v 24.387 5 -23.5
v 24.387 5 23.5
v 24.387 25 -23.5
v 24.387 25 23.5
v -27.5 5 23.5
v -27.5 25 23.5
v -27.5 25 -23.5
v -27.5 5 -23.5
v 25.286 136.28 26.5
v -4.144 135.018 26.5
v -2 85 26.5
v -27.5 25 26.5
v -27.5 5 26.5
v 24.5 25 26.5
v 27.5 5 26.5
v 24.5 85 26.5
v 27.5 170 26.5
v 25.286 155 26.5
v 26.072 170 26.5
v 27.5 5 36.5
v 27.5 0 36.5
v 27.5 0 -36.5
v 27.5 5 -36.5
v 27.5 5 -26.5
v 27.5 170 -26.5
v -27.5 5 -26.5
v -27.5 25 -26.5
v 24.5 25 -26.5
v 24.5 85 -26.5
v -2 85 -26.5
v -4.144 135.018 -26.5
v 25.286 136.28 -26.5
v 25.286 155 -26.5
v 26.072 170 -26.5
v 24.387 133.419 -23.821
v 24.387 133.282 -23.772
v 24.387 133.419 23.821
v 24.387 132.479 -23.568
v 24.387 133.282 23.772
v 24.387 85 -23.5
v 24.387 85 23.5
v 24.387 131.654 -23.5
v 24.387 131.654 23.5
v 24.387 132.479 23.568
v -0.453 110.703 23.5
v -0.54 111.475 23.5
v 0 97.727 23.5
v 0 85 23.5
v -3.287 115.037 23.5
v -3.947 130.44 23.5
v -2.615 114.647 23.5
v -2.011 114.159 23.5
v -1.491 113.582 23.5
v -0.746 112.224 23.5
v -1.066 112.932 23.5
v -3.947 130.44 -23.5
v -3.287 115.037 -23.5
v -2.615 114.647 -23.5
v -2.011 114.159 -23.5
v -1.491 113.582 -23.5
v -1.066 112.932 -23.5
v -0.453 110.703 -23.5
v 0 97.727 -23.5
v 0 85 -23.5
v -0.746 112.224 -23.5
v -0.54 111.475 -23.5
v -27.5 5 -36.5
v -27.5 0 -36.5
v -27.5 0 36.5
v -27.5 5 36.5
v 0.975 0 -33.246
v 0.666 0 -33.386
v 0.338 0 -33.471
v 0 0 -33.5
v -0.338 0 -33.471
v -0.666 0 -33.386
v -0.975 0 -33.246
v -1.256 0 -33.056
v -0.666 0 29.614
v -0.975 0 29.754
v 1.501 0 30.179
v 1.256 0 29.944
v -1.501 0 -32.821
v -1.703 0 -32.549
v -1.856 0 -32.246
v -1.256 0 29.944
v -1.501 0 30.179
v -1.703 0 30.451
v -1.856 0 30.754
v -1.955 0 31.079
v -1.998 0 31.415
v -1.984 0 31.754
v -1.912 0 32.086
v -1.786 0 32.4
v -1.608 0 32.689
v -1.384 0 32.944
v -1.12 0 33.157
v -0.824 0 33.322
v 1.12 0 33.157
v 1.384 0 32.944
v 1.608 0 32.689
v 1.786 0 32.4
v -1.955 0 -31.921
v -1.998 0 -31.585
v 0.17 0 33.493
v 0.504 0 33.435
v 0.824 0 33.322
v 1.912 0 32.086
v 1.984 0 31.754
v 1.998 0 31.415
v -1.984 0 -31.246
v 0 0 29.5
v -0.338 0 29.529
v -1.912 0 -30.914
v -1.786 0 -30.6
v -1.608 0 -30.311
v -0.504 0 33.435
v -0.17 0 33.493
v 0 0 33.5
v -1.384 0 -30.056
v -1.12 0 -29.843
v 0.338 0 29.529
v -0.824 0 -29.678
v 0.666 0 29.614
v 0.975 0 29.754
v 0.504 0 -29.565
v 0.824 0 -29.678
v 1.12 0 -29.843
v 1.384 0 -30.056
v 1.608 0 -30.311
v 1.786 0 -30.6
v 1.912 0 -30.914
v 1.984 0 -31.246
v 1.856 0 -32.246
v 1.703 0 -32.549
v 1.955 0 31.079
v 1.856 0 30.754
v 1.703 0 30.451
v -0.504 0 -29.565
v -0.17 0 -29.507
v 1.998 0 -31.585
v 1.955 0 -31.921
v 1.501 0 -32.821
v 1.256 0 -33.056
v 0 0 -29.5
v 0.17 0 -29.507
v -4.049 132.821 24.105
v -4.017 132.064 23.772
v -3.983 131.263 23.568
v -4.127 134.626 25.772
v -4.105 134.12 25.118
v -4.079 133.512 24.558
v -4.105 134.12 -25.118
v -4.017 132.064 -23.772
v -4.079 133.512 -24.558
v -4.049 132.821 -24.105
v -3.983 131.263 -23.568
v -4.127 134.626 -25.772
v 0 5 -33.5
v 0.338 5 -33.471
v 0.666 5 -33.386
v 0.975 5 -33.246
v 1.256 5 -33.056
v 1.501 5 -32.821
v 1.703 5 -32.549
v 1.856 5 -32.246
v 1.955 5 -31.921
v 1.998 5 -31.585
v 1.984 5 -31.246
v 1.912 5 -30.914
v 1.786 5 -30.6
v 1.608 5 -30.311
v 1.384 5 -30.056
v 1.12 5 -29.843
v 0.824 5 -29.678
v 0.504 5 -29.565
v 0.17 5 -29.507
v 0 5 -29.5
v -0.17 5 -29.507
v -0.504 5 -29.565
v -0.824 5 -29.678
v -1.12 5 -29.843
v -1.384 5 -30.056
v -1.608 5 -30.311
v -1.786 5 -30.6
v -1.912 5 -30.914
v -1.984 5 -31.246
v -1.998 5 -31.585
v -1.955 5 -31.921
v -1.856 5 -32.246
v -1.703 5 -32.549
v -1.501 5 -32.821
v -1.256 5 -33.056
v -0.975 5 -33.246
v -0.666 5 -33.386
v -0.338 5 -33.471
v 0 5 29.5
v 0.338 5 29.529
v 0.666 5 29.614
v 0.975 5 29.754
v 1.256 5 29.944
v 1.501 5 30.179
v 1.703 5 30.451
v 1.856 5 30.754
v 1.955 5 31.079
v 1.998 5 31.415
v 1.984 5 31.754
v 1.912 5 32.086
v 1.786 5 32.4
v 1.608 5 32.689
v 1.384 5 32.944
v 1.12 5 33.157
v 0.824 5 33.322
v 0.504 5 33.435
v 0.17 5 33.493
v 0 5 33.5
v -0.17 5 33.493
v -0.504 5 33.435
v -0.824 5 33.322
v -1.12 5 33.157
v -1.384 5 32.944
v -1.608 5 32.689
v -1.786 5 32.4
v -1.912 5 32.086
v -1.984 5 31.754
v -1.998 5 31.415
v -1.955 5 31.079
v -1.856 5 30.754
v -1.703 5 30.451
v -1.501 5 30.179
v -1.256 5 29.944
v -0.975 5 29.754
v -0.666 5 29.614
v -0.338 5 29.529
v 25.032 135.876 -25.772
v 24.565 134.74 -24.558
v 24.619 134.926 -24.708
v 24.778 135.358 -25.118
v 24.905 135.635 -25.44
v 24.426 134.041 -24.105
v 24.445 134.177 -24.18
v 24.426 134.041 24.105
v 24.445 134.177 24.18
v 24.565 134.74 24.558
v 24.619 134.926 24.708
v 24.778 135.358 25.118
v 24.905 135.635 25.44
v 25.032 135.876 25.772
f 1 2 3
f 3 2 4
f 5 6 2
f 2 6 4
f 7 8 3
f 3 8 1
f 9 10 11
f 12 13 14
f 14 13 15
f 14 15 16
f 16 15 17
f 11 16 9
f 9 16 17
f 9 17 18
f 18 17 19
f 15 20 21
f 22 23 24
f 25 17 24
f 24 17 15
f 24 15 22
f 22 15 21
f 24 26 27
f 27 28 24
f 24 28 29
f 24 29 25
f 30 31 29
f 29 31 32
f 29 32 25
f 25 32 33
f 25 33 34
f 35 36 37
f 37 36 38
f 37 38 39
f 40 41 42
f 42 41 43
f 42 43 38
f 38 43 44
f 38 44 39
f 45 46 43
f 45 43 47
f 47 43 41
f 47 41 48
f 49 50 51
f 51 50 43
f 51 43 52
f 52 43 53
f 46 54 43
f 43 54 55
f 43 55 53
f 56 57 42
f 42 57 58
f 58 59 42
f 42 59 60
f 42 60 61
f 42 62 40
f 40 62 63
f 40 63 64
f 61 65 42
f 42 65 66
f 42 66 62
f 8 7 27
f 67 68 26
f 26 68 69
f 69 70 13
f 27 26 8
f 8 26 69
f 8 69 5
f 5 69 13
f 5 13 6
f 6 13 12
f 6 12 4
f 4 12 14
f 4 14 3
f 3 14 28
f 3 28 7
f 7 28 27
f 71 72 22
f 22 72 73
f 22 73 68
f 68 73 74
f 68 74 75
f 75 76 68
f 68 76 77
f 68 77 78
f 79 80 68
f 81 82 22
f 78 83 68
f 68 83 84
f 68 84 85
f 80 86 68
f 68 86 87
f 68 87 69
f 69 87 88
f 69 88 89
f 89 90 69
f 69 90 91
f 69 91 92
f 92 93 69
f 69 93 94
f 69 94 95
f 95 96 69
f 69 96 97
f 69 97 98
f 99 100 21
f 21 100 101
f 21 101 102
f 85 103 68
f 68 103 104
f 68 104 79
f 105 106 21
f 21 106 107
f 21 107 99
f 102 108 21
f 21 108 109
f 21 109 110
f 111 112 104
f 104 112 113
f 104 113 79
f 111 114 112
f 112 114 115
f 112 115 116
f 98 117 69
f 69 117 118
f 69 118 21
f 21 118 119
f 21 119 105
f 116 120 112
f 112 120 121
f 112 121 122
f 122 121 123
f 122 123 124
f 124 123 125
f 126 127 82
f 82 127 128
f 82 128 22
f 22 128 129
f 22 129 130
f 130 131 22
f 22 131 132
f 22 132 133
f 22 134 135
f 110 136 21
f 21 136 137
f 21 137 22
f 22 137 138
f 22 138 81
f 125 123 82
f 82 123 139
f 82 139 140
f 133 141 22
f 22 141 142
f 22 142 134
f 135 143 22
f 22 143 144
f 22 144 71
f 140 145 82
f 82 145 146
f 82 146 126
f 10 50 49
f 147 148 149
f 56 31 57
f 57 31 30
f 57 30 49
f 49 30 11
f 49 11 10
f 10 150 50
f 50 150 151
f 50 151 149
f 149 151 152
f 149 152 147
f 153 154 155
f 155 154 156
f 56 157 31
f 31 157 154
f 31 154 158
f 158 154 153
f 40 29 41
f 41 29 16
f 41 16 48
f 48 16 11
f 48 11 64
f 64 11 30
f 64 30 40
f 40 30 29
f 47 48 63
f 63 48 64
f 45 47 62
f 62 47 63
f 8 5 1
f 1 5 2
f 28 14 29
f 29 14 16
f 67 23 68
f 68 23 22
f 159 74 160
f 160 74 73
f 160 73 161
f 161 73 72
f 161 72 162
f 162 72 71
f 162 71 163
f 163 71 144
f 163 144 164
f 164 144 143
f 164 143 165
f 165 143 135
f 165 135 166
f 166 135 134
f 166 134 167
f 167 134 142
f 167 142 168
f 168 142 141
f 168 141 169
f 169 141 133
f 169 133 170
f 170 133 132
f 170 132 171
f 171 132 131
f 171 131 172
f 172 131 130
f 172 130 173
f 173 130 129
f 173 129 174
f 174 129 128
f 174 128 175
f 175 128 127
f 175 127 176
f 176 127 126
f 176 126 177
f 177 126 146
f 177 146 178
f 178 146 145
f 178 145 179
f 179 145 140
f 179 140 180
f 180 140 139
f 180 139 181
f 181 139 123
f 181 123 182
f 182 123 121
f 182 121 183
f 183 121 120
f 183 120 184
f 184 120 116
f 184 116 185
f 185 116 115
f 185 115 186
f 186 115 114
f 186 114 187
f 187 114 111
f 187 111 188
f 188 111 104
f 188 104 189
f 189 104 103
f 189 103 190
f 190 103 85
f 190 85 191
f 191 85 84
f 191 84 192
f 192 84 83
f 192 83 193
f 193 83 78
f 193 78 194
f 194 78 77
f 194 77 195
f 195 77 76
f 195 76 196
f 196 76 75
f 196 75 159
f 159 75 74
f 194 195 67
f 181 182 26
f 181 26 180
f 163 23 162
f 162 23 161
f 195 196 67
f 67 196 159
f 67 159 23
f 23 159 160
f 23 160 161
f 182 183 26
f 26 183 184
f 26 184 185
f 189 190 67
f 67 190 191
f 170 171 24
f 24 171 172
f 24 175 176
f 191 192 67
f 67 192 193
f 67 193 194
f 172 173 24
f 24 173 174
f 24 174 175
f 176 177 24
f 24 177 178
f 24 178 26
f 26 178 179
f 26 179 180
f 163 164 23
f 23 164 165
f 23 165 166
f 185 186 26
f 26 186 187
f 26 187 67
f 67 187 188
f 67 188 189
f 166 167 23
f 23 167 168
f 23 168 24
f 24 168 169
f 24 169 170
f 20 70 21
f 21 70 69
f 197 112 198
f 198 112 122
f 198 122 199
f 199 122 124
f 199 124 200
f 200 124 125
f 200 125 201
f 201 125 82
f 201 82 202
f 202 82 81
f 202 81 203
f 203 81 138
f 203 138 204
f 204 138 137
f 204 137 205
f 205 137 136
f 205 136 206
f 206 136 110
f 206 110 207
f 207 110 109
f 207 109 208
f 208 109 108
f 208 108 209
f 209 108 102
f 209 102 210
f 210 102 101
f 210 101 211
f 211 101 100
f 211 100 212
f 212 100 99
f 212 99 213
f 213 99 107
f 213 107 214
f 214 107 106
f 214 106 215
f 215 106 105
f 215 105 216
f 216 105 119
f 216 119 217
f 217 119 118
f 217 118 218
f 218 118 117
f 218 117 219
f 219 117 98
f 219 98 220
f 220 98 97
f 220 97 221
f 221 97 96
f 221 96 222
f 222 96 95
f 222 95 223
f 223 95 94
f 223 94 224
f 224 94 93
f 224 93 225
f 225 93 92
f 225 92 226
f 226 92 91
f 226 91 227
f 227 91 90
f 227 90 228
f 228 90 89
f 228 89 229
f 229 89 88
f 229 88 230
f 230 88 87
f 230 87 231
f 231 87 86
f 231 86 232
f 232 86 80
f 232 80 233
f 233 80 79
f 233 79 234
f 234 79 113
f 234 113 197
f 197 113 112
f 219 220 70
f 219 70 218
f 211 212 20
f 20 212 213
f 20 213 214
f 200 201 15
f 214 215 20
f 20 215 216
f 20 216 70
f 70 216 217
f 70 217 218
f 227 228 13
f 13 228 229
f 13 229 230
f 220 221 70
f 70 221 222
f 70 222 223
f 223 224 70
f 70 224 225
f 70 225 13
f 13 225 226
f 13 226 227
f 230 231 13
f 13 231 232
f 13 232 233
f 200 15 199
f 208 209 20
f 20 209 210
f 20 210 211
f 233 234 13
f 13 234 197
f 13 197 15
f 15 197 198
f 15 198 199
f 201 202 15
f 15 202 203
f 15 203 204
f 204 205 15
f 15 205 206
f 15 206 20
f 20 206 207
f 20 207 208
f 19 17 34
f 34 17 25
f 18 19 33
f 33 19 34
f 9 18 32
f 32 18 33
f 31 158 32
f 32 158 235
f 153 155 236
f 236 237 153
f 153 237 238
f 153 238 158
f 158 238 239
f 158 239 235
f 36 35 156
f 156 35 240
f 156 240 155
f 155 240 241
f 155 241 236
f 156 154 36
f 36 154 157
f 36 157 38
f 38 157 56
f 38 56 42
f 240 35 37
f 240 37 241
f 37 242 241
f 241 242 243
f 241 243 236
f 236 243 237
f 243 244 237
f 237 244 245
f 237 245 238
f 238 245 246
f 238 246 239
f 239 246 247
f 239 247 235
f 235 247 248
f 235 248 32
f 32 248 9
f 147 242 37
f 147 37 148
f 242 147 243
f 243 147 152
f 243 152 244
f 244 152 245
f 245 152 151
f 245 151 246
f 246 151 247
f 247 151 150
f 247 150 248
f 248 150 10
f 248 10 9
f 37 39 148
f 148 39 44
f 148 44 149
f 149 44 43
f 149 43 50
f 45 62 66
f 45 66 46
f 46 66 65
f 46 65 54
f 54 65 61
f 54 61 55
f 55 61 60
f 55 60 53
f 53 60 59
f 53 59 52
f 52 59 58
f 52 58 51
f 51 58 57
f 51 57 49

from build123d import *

# Parameters (mm, degrees)
CROQUIS1_W              = 55
CROQUIS1_H              = 53
CROQUIS1_W_2            = 48.773584906
CROQUIS1_H_2            = 47
SALIENTE_EXTRUIR1_DEPTH = 25
SALIENTE_EXTRUIR2_DEPTH = 160
SALIENTE_EXTRUIR3_DEPTH = 50
SALIENTE_EXTRUIR5_DEPTH = 3
CROQUIS4_W              = 100
CROQUIS4_H              = 30
CORTAR_EXTRUIR1_DEPTH   = 63
CHAFL_N1_SIZE           = 2
CHAFL_N1_SIZE2          = 57.272506566
CROQUIS1_2_W            = 55
CROQUIS1_2_H            = 53
CROQUIS1_2_W_2          = 48.773584906
CROQUIS1_2_H_2          = 47
SALIENTE_EXTRUIR6_DEPTH = 5
CROQUIS5_W              = 30
CROQUIS5_H              = 60
CORTAR_EXTRUIR2_DEPTH   = 60
CROQUIS1_4_W            = 55
CROQUIS1_4_H            = 10
CROQUIS1_4_R            = 2
SALIENTE_EXTRUIR7_DEPTH = 5
CROQUIS6_W              = 53
CROQUIS6_H              = 15
CORTAR_EXTRUIR3_DEPTH   = 5
CHAFL_N2_SIZE           = 30
CHAFL_N2_SIZE_2         = 1.572233378
CHAFL_N3_SIZE           = 5
CHAFL_N3_SIZE2          = 0.881634904
CROQUIS7_W              = 47
CROQUIS7_H              = 20
CORTAR_EXTRUIR4_DEPTH   = 40
CROQUIS8_W              = 47
CROQUIS8_H              = 40
CORTAR_EXTRUIR5_DEPTH   = 10
CORTAR_EXTRUIR6_DEPTH   = 70
REDONDEO3_R             = 5
REDONDEO5_R             = 5


with BuildPart() as part:
    # Croquis1 → Saliente-Extruir1 (new body)
    with BuildSketch(Plane(origin=(0, 0, 0), x_dir=(1, 0, 0), z_dir=(0, 1, 0))):
        Rectangle(CROQUIS1_W, CROQUIS1_H)
        Rectangle(CROQUIS1_W_2, CROQUIS1_H_2, mode=Mode.SUBTRACT)
    extrude(amount=SALIENTE_EXTRUIR1_DEPTH)

    # Croquis2 → Saliente-Extruir2 (add)
    with BuildSketch(Plane(origin=(0, 25, 0), x_dir=(1, 0, 0), z_dir=(0, 1, 0))):
        Polygon((0, 23.5), (0, 26.5), (27.5, 26.5), (27.5, -26.5), (0, -26.5), (0, -23.5), (24.386792453, -23.5), (24.386792453, 23.5), align=None)
    extrude(amount=SALIENTE_EXTRUIR2_DEPTH)



with BuildPart() as body_2:
    # Croquis3 → Saliente-Extruir3 (new body)
    with BuildSketch(Plane(origin=(0, 0, 23.5), x_dir=(-1, 0, 0), z_dir=(0, 0, -1))):
        Polygon((0, 155), (5, 155), (2, 85), (0, 85), align=None)
    extrude(amount=SALIENTE_EXTRUIR3_DEPTH)


with BuildPart() as part_1:
    add(part.part)

    add(body_2.part)  # Saliente-Extruir5 merges body 2
    # Croquis3<4> → Saliente-Extruir5 (add)
    with BuildSketch(Plane(origin=(0, 0, 23.5), x_dir=(-1, 0, 0), z_dir=(0, 0, -1))):
        Polygon((0, 155), (5, 155), (2, 85), (0, 85), align=None)
    extrude(amount=-SALIENTE_EXTRUIR5_DEPTH)

    # Croquis4 → Cortar-Extruir1 (cut)
    with BuildSketch(Plane(origin=(0, 0, -26.5), x_dir=(-1, 0, 0), z_dir=(0, 0, -1))):
        with Locations((25.5, 170)):
            Rectangle(CROQUIS4_W, CROQUIS4_H)
    extrude(amount=-CORTAR_EXTRUIR1_DEPTH, mode=Mode.SUBTRACT)

    # Chaflán1
    chafl_n1_edges = [part_1.edges().sort_by_distance(p)[0] for p in [
        (0, 155, 0),
    ]]
    chafl_n1_side = [part_1.faces().sort_by_distance(p)[0] for p in [
        (9.75, 155, -25.893431785),
    ]]
    chamfer(chafl_n1_edges, length=CHAFL_N1_SIZE, length2=CHAFL_N1_SIZE2, reference=chafl_n1_side[0])

    # Croquis1<2> → Saliente-Extruir6 (add)
    # profile 1 of 2: a face of its own
    with BuildSketch(Plane(origin=(0, 0, 0), x_dir=(1, 0, 0), z_dir=(0, 1, 0))):
        Rectangle(CROQUIS1_2_W, CROQUIS1_2_H)
        Rectangle(CROQUIS1_2_W_2, CROQUIS1_2_H_2, mode=Mode.SUBTRACT)
    # profile 2 of 2: a face of its own
    with BuildSketch(Plane(origin=(0, 0, 0), x_dir=(1, 0, 0), z_dir=(0, 1, 0))):
        Rectangle(CROQUIS1_2_W_2, CROQUIS1_2_H_2)
    extrude(amount=SALIENTE_EXTRUIR6_DEPTH)

    # Croquis5 → Cortar-Extruir2 (cut)
    with BuildSketch(Plane(origin=(0, 0, -26.5), x_dir=(-1, 0, 0), z_dir=(0, 0, -1))):
        with Locations((-9.5, 55)):
            Rectangle(CROQUIS5_W, CROQUIS5_H)
    extrude(amount=-CORTAR_EXTRUIR2_DEPTH, mode=Mode.SUBTRACT)

    # Croquis1<4> → Saliente-Extruir7 (add)
    # profile 1 of 2: a face of its own
    with BuildSketch(Plane(origin=(0, 0, 0), x_dir=(1, 0, 0), z_dir=(0, 1, 0))):
        with Locations((0, 31.5)):
            Rectangle(CROQUIS1_4_W, CROQUIS1_4_H)
        with Locations(Location((0, 31.5, 0), (0, 0, 270))):
            Circle(CROQUIS1_4_R, mode=Mode.SUBTRACT)
    # profile 2 of 2: a face of its own
    with BuildSketch(Plane(origin=(0, 0, 0), x_dir=(1, 0, 0), z_dir=(0, 1, 0))):
        with Locations((0, -31.5)):
            Rectangle(CROQUIS1_4_W, CROQUIS1_4_H)
        with Locations(Location((0, -31.5, 0), (0, 0, 270))):
            Circle(CROQUIS1_4_R, mode=Mode.SUBTRACT)
    extrude(amount=SALIENTE_EXTRUIR7_DEPTH)

    # Croquis6 → Cortar-Extruir3 (cut)
    with BuildSketch(Plane.ZY.offset(-24.5)):
        with Locations((0, 177.5)):
            Rectangle(CROQUIS6_W, CROQUIS6_H)
    extrude(amount=-CORTAR_EXTRUIR3_DEPTH, mode=Mode.SUBTRACT)

    # Chaflán2
    # the kernel refuses this chamfer: 30, 1.572233378 mm, written as the material it takes off along each edge
    with BuildSketch(Plane(origin=(24.5, 170, -104.496046635), x_dir=(-0.002013023422382327, -0.9999979738662979, 0), z_dir=(0, 0, 1))) as chafl_n2_piece_1_section:
        Polygon((CHAFL_N2_SIZE * 0.999997973866, CHAFL_N2_SIZE * 0.00201302342238), (-CHAFL_N2_SIZE_2 * 0.00201302342301, CHAFL_N2_SIZE_2 * 0.999997974179), (0, 0), align=None)
    chafl_n2_piece_1 = extrude(amount=208.992093269, mode=Mode.PRIVATE)
    chafl_n2_piece_1 = split(chafl_n2_piece_1, bisect_by=Plane(origin=(25.111424092, 155, 0), z_dir=(0, 1, 0)), keep=Keep.TOP, mode=Mode.PRIVATE)
    add(chafl_n2_piece_1, mode=Mode.SUBTRACT)

    # Chaflán3
    chafl_n3_edges = [part_1.edges().sort_by_distance(p)[0] for p in [
        (24.386792453, 155, 0),
    ]]
    chafl_n3_side = [part_1.faces().sort_by_distance(p)[0] for p in [
        (24.386792453, 120, 0),
    ]]
    chamfer(chafl_n3_edges, length=CHAFL_N3_SIZE, length2=CHAFL_N3_SIZE2, reference=chafl_n3_side[0])

    # Croquis7 → Cortar-Extruir4 (cut)
    with BuildSketch(Plane.ZY.offset(27.5)):
        with Locations((0, 15)):
            Rectangle(CROQUIS7_W, CROQUIS7_H)
    extrude(amount=-CORTAR_EXTRUIR4_DEPTH, mode=Mode.SUBTRACT)

    # Croquis8 → Cortar-Extruir5 (cut)
    with BuildSketch(Plane(origin=(1.639845182, 0.070279079, 0), x_dir=(0, 0, 1), z_dir=(-0.9990828958176697, -0.04281783839218585, 0))):
        with Locations((0, 135.071938044)):
            Rectangle(CROQUIS8_W, CROQUIS8_H)
    extrude(amount=-CORTAR_EXTRUIR5_DEPTH, mode=Mode.SUBTRACT)

    # Croquis9 → Cortar-Extruir6 (cut)
    with BuildSketch(Plane.XY.offset(26.5)):
        Polygon((-5, 155), (25.286116689, 155), (25.286116689, 136.279617509), (-4.143643232, 135.018342084), align=None)
    extrude(amount=-CORTAR_EXTRUIR6_DEPTH, mode=Mode.SUBTRACT)

    # Redondeo3
    # the kernel refuses this fillet: 5 mm, written as the material it takes off along each edge
    with BuildSketch(Plane(origin=(-4.143643232, 135.018342084, 23.5), x_dir=(0, 0, 1), z_dir=(0.9990828958176697, 0.042817838392185704, 0))) as redondeo3_piece_1_section:
        with BuildLine():
            CenterArc((5, 4.582575695), REDONDEO3_R, 180, 66.421821522)
            Line((0, 4.582575695), (-0.1, 4.582575695))
            Line((-0.1, 4.582575695), (-0.1, 0))
            Line((-0.1, 0), (0, -0.1))
            ThreePointArc((0, -0.1), (1.5, -0.1), (2.96, -0.091651514))
            Line((2.96, -0.091651514), (3, 0))
        make_face()
    redondeo3_piece_1 = extrude(amount=40.013064323, mode=Mode.PRIVATE)
    redondeo3_piece_1 = split(redondeo3_piece_1, bisect_by=Plane(origin=(24.386792453, 134.515316135, 24.276456874), z_dir=(-1, 0, 0)), keep=Keep.TOP, mode=Mode.PRIVATE)
    add(redondeo3_piece_1, mode=Mode.SUBTRACT)
    with BuildSketch(Plane(origin=(24.386792453, 136.241075042, 23.5), x_dir=(0.9990828958176863, 0.04281783839180005, 0), z_dir=(0, 0, -1))) as redondeo3_piece_2:
        with BuildLine():
            CenterArc((4.874569404, 3.033807599), REDONDEO3_R, 182.454031675, 34.901674654)
            Line((-0.120845075, 2.819718407), (-0.220753364, 2.815436623))
            Line((-0.220753364, 2.815436623), (-0.09990829, -0.004281784))
            Line((-0.09990829, -0.004281784), (0, -0.1))
            ThreePointArc((0, -0.1), (0.450074884, -0.1), (0.820661375, -0.060676152))
            Line((0.820661375, -0.060676152), (0.900149768, 0))
        make_face()
    extrude(amount=47, mode=Mode.SUBTRACT)
    with BuildSketch(Plane(origin=(35.832724942, 136.731615005, -23.5), x_dir=(0.0428178383921857, -0.9990828958176697, 0), z_dir=(-0.9990828958176697, -0.042817838392185704, 0))) as redondeo3_piece_3_section:
        with BuildLine():
            CenterArc((4.582575695, -5), REDONDEO3_R, 90, 66.421821522)
            Line((0, -3), (-0.091651514, -2.96))
            ThreePointArc((-0.091651514, -2.96), (-0.1, -1.5), (-0.1, 0))
            Line((-0.1, 0), (0, 0.1))
            Line((0, 0.1), (4.582575695, 0.1))
            Line((4.582575695, 0.1), (4.582575695, 0))
        make_face()
    redondeo3_piece_3 = extrude(amount=40.013064323, mode=Mode.PRIVATE)
    redondeo3_piece_3 = split(redondeo3_piece_3, bisect_by=Plane(origin=(24.386792453, 134.515316135, -24.276456874), z_dir=(-1, 0, 0)), keep=Keep.TOP, mode=Mode.PRIVATE)
    add(redondeo3_piece_3, mode=Mode.SUBTRACT)
    with BuildSketch(Plane(origin=(-4.143643232, 135.018342084, 23.5), x_dir=(0, 0, 1), z_dir=(0.9990828958176697, 0.042817838392185704, 0))) as redondeo3_piece_4a_section:
        with BuildLine():
            CenterArc((5, 4.582575695), REDONDEO3_R, 180, 66.421821522)
            Line((0, 4.582575695), (-0.1, 4.582575695))
            Line((-0.1, 4.582575695), (-0.1, 0))
            Line((-0.1, 0), (0, -0.1))
            ThreePointArc((0, -0.1), (1.5, -0.1), (2.96, -0.091651514))
            Line((2.96, -0.091651514), (3, 0))
        make_face()
    redondeo3_piece_4a = extrude(amount=40.013064323, mode=Mode.PRIVATE)
    redondeo3_piece_4a = split(redondeo3_piece_4a, bisect_by=Plane(origin=(24.386792453, 135.366576267, 24.274229372), z_dir=(1, 0, 0)), keep=Keep.TOP, mode=Mode.PRIVATE)
    with BuildSketch(Plane(origin=(24.386792453, 136.241075042, 30.555766892), x_dir=(0.9990828958176863, 0.04281783839180005, 0), z_dir=(0, 0, -1))) as redondeo3_piece_4b_section:
        with BuildLine():
            CenterArc((4.874569404, 3.033807599), REDONDEO3_R, 182.454031675, 34.901674654)
            Line((-0.120845075, 2.819718407), (-0.220753364, 2.815436623))
            Line((-0.220753364, 2.815436623), (-0.09990829, -0.004281784))
            Line((-0.09990829, -0.004281784), (0, -0.1))
            ThreePointArc((0, -0.1), (0.450074884, -0.1), (0.820661375, -0.060676152))
            Line((0.820661375, -0.060676152), (0.900149768, 0))
        make_face()
    redondeo3_piece_4b = extrude(amount=54.055766892, mode=Mode.PRIVATE)
    redondeo3_piece_4b = split(redondeo3_piece_4b, bisect_by=Plane(origin=(24.583130189, 135.440658169, 23.5), z_dir=(0, 0, 1)), keep=Keep.TOP, mode=Mode.PRIVATE)
    redondeo3_piece_4 = redondeo3_piece_4a & redondeo3_piece_4b
    add(redondeo3_piece_4, mode=Mode.SUBTRACT)
    with BuildSketch(Plane(origin=(35.832724942, 136.731615005, -23.5), x_dir=(0.0428178383921857, -0.9990828958176697, 0), z_dir=(-0.9990828958176697, -0.042817838392185704, 0))) as redondeo3_piece_5a_section:
        with BuildLine():
            CenterArc((4.582575695, -5), REDONDEO3_R, 90, 66.421821522)
            Line((0, -3), (-0.091651514, -2.96))
            ThreePointArc((-0.091651514, -2.96), (-0.1, -1.5), (-0.1, 0))
            Line((-0.1, 0), (0, 0.1))
            Line((0, 0.1), (4.582575695, 0.1))
            Line((4.582575695, 0.1), (4.582575695, 0))
        make_face()
    redondeo3_piece_5a = extrude(amount=40.013064323, mode=Mode.PRIVATE)
    redondeo3_piece_5a = split(redondeo3_piece_5a, bisect_by=Plane(origin=(24.386792453, 135.366576267, -24.274229372), z_dir=(1, 0, 0)), keep=Keep.TOP, mode=Mode.PRIVATE)
    with BuildSketch(Plane(origin=(24.386792453, 136.241075042, 23.5), x_dir=(0.9990828958176863, 0.04281783839180005, 0), z_dir=(0, 0, -1))) as redondeo3_piece_5b_section:
        with BuildLine():
            CenterArc((4.874569404, 3.033807599), REDONDEO3_R, 182.454031675, 34.901674654)
            Line((-0.120845075, 2.819718407), (-0.220753364, 2.815436623))
            Line((-0.220753364, 2.815436623), (-0.09990829, -0.004281784))
            Line((-0.09990829, -0.004281784), (0, -0.1))
            ThreePointArc((0, -0.1), (0.450074884, -0.1), (0.820661375, -0.060676152))
            Line((0.820661375, -0.060676152), (0.900149768, 0))
        make_face()
    redondeo3_piece_5b = extrude(amount=54.055766892, mode=Mode.PRIVATE)
    redondeo3_piece_5b = split(redondeo3_piece_5b, bisect_by=Plane(origin=(24.583130189, 135.440658169, -23.5), z_dir=(0, 0, -1)), keep=Keep.TOP, mode=Mode.PRIVATE)
    redondeo3_piece_5 = redondeo3_piece_5a & redondeo3_piece_5b
    add(redondeo3_piece_5, mode=Mode.SUBTRACT)

    # Redondeo5
    # the kernel refuses this fillet: 5 mm, written as the material it takes off along each edge
    with BuildSketch(Plane(origin=(-0.608459404, 115.151491041, -23.5), x_dir=(-0.9990828958176692, -0.04281783839219633, 0), z_dir=(0, 0, 1))) as redondeo5_piece_1:
        with BuildLine():
            CenterArc((5.035114331, 4.411291484), REDONDEO5_R, 179.545968325, 62.370023628)
            Line((0.035271319, 4.450912808), (0, 0))
            Line((0, 0), (2.681286079, 0))
        make_face()
    extrude(amount=47, mode=Mode.SUBTRACT)


solid = part_1.part
